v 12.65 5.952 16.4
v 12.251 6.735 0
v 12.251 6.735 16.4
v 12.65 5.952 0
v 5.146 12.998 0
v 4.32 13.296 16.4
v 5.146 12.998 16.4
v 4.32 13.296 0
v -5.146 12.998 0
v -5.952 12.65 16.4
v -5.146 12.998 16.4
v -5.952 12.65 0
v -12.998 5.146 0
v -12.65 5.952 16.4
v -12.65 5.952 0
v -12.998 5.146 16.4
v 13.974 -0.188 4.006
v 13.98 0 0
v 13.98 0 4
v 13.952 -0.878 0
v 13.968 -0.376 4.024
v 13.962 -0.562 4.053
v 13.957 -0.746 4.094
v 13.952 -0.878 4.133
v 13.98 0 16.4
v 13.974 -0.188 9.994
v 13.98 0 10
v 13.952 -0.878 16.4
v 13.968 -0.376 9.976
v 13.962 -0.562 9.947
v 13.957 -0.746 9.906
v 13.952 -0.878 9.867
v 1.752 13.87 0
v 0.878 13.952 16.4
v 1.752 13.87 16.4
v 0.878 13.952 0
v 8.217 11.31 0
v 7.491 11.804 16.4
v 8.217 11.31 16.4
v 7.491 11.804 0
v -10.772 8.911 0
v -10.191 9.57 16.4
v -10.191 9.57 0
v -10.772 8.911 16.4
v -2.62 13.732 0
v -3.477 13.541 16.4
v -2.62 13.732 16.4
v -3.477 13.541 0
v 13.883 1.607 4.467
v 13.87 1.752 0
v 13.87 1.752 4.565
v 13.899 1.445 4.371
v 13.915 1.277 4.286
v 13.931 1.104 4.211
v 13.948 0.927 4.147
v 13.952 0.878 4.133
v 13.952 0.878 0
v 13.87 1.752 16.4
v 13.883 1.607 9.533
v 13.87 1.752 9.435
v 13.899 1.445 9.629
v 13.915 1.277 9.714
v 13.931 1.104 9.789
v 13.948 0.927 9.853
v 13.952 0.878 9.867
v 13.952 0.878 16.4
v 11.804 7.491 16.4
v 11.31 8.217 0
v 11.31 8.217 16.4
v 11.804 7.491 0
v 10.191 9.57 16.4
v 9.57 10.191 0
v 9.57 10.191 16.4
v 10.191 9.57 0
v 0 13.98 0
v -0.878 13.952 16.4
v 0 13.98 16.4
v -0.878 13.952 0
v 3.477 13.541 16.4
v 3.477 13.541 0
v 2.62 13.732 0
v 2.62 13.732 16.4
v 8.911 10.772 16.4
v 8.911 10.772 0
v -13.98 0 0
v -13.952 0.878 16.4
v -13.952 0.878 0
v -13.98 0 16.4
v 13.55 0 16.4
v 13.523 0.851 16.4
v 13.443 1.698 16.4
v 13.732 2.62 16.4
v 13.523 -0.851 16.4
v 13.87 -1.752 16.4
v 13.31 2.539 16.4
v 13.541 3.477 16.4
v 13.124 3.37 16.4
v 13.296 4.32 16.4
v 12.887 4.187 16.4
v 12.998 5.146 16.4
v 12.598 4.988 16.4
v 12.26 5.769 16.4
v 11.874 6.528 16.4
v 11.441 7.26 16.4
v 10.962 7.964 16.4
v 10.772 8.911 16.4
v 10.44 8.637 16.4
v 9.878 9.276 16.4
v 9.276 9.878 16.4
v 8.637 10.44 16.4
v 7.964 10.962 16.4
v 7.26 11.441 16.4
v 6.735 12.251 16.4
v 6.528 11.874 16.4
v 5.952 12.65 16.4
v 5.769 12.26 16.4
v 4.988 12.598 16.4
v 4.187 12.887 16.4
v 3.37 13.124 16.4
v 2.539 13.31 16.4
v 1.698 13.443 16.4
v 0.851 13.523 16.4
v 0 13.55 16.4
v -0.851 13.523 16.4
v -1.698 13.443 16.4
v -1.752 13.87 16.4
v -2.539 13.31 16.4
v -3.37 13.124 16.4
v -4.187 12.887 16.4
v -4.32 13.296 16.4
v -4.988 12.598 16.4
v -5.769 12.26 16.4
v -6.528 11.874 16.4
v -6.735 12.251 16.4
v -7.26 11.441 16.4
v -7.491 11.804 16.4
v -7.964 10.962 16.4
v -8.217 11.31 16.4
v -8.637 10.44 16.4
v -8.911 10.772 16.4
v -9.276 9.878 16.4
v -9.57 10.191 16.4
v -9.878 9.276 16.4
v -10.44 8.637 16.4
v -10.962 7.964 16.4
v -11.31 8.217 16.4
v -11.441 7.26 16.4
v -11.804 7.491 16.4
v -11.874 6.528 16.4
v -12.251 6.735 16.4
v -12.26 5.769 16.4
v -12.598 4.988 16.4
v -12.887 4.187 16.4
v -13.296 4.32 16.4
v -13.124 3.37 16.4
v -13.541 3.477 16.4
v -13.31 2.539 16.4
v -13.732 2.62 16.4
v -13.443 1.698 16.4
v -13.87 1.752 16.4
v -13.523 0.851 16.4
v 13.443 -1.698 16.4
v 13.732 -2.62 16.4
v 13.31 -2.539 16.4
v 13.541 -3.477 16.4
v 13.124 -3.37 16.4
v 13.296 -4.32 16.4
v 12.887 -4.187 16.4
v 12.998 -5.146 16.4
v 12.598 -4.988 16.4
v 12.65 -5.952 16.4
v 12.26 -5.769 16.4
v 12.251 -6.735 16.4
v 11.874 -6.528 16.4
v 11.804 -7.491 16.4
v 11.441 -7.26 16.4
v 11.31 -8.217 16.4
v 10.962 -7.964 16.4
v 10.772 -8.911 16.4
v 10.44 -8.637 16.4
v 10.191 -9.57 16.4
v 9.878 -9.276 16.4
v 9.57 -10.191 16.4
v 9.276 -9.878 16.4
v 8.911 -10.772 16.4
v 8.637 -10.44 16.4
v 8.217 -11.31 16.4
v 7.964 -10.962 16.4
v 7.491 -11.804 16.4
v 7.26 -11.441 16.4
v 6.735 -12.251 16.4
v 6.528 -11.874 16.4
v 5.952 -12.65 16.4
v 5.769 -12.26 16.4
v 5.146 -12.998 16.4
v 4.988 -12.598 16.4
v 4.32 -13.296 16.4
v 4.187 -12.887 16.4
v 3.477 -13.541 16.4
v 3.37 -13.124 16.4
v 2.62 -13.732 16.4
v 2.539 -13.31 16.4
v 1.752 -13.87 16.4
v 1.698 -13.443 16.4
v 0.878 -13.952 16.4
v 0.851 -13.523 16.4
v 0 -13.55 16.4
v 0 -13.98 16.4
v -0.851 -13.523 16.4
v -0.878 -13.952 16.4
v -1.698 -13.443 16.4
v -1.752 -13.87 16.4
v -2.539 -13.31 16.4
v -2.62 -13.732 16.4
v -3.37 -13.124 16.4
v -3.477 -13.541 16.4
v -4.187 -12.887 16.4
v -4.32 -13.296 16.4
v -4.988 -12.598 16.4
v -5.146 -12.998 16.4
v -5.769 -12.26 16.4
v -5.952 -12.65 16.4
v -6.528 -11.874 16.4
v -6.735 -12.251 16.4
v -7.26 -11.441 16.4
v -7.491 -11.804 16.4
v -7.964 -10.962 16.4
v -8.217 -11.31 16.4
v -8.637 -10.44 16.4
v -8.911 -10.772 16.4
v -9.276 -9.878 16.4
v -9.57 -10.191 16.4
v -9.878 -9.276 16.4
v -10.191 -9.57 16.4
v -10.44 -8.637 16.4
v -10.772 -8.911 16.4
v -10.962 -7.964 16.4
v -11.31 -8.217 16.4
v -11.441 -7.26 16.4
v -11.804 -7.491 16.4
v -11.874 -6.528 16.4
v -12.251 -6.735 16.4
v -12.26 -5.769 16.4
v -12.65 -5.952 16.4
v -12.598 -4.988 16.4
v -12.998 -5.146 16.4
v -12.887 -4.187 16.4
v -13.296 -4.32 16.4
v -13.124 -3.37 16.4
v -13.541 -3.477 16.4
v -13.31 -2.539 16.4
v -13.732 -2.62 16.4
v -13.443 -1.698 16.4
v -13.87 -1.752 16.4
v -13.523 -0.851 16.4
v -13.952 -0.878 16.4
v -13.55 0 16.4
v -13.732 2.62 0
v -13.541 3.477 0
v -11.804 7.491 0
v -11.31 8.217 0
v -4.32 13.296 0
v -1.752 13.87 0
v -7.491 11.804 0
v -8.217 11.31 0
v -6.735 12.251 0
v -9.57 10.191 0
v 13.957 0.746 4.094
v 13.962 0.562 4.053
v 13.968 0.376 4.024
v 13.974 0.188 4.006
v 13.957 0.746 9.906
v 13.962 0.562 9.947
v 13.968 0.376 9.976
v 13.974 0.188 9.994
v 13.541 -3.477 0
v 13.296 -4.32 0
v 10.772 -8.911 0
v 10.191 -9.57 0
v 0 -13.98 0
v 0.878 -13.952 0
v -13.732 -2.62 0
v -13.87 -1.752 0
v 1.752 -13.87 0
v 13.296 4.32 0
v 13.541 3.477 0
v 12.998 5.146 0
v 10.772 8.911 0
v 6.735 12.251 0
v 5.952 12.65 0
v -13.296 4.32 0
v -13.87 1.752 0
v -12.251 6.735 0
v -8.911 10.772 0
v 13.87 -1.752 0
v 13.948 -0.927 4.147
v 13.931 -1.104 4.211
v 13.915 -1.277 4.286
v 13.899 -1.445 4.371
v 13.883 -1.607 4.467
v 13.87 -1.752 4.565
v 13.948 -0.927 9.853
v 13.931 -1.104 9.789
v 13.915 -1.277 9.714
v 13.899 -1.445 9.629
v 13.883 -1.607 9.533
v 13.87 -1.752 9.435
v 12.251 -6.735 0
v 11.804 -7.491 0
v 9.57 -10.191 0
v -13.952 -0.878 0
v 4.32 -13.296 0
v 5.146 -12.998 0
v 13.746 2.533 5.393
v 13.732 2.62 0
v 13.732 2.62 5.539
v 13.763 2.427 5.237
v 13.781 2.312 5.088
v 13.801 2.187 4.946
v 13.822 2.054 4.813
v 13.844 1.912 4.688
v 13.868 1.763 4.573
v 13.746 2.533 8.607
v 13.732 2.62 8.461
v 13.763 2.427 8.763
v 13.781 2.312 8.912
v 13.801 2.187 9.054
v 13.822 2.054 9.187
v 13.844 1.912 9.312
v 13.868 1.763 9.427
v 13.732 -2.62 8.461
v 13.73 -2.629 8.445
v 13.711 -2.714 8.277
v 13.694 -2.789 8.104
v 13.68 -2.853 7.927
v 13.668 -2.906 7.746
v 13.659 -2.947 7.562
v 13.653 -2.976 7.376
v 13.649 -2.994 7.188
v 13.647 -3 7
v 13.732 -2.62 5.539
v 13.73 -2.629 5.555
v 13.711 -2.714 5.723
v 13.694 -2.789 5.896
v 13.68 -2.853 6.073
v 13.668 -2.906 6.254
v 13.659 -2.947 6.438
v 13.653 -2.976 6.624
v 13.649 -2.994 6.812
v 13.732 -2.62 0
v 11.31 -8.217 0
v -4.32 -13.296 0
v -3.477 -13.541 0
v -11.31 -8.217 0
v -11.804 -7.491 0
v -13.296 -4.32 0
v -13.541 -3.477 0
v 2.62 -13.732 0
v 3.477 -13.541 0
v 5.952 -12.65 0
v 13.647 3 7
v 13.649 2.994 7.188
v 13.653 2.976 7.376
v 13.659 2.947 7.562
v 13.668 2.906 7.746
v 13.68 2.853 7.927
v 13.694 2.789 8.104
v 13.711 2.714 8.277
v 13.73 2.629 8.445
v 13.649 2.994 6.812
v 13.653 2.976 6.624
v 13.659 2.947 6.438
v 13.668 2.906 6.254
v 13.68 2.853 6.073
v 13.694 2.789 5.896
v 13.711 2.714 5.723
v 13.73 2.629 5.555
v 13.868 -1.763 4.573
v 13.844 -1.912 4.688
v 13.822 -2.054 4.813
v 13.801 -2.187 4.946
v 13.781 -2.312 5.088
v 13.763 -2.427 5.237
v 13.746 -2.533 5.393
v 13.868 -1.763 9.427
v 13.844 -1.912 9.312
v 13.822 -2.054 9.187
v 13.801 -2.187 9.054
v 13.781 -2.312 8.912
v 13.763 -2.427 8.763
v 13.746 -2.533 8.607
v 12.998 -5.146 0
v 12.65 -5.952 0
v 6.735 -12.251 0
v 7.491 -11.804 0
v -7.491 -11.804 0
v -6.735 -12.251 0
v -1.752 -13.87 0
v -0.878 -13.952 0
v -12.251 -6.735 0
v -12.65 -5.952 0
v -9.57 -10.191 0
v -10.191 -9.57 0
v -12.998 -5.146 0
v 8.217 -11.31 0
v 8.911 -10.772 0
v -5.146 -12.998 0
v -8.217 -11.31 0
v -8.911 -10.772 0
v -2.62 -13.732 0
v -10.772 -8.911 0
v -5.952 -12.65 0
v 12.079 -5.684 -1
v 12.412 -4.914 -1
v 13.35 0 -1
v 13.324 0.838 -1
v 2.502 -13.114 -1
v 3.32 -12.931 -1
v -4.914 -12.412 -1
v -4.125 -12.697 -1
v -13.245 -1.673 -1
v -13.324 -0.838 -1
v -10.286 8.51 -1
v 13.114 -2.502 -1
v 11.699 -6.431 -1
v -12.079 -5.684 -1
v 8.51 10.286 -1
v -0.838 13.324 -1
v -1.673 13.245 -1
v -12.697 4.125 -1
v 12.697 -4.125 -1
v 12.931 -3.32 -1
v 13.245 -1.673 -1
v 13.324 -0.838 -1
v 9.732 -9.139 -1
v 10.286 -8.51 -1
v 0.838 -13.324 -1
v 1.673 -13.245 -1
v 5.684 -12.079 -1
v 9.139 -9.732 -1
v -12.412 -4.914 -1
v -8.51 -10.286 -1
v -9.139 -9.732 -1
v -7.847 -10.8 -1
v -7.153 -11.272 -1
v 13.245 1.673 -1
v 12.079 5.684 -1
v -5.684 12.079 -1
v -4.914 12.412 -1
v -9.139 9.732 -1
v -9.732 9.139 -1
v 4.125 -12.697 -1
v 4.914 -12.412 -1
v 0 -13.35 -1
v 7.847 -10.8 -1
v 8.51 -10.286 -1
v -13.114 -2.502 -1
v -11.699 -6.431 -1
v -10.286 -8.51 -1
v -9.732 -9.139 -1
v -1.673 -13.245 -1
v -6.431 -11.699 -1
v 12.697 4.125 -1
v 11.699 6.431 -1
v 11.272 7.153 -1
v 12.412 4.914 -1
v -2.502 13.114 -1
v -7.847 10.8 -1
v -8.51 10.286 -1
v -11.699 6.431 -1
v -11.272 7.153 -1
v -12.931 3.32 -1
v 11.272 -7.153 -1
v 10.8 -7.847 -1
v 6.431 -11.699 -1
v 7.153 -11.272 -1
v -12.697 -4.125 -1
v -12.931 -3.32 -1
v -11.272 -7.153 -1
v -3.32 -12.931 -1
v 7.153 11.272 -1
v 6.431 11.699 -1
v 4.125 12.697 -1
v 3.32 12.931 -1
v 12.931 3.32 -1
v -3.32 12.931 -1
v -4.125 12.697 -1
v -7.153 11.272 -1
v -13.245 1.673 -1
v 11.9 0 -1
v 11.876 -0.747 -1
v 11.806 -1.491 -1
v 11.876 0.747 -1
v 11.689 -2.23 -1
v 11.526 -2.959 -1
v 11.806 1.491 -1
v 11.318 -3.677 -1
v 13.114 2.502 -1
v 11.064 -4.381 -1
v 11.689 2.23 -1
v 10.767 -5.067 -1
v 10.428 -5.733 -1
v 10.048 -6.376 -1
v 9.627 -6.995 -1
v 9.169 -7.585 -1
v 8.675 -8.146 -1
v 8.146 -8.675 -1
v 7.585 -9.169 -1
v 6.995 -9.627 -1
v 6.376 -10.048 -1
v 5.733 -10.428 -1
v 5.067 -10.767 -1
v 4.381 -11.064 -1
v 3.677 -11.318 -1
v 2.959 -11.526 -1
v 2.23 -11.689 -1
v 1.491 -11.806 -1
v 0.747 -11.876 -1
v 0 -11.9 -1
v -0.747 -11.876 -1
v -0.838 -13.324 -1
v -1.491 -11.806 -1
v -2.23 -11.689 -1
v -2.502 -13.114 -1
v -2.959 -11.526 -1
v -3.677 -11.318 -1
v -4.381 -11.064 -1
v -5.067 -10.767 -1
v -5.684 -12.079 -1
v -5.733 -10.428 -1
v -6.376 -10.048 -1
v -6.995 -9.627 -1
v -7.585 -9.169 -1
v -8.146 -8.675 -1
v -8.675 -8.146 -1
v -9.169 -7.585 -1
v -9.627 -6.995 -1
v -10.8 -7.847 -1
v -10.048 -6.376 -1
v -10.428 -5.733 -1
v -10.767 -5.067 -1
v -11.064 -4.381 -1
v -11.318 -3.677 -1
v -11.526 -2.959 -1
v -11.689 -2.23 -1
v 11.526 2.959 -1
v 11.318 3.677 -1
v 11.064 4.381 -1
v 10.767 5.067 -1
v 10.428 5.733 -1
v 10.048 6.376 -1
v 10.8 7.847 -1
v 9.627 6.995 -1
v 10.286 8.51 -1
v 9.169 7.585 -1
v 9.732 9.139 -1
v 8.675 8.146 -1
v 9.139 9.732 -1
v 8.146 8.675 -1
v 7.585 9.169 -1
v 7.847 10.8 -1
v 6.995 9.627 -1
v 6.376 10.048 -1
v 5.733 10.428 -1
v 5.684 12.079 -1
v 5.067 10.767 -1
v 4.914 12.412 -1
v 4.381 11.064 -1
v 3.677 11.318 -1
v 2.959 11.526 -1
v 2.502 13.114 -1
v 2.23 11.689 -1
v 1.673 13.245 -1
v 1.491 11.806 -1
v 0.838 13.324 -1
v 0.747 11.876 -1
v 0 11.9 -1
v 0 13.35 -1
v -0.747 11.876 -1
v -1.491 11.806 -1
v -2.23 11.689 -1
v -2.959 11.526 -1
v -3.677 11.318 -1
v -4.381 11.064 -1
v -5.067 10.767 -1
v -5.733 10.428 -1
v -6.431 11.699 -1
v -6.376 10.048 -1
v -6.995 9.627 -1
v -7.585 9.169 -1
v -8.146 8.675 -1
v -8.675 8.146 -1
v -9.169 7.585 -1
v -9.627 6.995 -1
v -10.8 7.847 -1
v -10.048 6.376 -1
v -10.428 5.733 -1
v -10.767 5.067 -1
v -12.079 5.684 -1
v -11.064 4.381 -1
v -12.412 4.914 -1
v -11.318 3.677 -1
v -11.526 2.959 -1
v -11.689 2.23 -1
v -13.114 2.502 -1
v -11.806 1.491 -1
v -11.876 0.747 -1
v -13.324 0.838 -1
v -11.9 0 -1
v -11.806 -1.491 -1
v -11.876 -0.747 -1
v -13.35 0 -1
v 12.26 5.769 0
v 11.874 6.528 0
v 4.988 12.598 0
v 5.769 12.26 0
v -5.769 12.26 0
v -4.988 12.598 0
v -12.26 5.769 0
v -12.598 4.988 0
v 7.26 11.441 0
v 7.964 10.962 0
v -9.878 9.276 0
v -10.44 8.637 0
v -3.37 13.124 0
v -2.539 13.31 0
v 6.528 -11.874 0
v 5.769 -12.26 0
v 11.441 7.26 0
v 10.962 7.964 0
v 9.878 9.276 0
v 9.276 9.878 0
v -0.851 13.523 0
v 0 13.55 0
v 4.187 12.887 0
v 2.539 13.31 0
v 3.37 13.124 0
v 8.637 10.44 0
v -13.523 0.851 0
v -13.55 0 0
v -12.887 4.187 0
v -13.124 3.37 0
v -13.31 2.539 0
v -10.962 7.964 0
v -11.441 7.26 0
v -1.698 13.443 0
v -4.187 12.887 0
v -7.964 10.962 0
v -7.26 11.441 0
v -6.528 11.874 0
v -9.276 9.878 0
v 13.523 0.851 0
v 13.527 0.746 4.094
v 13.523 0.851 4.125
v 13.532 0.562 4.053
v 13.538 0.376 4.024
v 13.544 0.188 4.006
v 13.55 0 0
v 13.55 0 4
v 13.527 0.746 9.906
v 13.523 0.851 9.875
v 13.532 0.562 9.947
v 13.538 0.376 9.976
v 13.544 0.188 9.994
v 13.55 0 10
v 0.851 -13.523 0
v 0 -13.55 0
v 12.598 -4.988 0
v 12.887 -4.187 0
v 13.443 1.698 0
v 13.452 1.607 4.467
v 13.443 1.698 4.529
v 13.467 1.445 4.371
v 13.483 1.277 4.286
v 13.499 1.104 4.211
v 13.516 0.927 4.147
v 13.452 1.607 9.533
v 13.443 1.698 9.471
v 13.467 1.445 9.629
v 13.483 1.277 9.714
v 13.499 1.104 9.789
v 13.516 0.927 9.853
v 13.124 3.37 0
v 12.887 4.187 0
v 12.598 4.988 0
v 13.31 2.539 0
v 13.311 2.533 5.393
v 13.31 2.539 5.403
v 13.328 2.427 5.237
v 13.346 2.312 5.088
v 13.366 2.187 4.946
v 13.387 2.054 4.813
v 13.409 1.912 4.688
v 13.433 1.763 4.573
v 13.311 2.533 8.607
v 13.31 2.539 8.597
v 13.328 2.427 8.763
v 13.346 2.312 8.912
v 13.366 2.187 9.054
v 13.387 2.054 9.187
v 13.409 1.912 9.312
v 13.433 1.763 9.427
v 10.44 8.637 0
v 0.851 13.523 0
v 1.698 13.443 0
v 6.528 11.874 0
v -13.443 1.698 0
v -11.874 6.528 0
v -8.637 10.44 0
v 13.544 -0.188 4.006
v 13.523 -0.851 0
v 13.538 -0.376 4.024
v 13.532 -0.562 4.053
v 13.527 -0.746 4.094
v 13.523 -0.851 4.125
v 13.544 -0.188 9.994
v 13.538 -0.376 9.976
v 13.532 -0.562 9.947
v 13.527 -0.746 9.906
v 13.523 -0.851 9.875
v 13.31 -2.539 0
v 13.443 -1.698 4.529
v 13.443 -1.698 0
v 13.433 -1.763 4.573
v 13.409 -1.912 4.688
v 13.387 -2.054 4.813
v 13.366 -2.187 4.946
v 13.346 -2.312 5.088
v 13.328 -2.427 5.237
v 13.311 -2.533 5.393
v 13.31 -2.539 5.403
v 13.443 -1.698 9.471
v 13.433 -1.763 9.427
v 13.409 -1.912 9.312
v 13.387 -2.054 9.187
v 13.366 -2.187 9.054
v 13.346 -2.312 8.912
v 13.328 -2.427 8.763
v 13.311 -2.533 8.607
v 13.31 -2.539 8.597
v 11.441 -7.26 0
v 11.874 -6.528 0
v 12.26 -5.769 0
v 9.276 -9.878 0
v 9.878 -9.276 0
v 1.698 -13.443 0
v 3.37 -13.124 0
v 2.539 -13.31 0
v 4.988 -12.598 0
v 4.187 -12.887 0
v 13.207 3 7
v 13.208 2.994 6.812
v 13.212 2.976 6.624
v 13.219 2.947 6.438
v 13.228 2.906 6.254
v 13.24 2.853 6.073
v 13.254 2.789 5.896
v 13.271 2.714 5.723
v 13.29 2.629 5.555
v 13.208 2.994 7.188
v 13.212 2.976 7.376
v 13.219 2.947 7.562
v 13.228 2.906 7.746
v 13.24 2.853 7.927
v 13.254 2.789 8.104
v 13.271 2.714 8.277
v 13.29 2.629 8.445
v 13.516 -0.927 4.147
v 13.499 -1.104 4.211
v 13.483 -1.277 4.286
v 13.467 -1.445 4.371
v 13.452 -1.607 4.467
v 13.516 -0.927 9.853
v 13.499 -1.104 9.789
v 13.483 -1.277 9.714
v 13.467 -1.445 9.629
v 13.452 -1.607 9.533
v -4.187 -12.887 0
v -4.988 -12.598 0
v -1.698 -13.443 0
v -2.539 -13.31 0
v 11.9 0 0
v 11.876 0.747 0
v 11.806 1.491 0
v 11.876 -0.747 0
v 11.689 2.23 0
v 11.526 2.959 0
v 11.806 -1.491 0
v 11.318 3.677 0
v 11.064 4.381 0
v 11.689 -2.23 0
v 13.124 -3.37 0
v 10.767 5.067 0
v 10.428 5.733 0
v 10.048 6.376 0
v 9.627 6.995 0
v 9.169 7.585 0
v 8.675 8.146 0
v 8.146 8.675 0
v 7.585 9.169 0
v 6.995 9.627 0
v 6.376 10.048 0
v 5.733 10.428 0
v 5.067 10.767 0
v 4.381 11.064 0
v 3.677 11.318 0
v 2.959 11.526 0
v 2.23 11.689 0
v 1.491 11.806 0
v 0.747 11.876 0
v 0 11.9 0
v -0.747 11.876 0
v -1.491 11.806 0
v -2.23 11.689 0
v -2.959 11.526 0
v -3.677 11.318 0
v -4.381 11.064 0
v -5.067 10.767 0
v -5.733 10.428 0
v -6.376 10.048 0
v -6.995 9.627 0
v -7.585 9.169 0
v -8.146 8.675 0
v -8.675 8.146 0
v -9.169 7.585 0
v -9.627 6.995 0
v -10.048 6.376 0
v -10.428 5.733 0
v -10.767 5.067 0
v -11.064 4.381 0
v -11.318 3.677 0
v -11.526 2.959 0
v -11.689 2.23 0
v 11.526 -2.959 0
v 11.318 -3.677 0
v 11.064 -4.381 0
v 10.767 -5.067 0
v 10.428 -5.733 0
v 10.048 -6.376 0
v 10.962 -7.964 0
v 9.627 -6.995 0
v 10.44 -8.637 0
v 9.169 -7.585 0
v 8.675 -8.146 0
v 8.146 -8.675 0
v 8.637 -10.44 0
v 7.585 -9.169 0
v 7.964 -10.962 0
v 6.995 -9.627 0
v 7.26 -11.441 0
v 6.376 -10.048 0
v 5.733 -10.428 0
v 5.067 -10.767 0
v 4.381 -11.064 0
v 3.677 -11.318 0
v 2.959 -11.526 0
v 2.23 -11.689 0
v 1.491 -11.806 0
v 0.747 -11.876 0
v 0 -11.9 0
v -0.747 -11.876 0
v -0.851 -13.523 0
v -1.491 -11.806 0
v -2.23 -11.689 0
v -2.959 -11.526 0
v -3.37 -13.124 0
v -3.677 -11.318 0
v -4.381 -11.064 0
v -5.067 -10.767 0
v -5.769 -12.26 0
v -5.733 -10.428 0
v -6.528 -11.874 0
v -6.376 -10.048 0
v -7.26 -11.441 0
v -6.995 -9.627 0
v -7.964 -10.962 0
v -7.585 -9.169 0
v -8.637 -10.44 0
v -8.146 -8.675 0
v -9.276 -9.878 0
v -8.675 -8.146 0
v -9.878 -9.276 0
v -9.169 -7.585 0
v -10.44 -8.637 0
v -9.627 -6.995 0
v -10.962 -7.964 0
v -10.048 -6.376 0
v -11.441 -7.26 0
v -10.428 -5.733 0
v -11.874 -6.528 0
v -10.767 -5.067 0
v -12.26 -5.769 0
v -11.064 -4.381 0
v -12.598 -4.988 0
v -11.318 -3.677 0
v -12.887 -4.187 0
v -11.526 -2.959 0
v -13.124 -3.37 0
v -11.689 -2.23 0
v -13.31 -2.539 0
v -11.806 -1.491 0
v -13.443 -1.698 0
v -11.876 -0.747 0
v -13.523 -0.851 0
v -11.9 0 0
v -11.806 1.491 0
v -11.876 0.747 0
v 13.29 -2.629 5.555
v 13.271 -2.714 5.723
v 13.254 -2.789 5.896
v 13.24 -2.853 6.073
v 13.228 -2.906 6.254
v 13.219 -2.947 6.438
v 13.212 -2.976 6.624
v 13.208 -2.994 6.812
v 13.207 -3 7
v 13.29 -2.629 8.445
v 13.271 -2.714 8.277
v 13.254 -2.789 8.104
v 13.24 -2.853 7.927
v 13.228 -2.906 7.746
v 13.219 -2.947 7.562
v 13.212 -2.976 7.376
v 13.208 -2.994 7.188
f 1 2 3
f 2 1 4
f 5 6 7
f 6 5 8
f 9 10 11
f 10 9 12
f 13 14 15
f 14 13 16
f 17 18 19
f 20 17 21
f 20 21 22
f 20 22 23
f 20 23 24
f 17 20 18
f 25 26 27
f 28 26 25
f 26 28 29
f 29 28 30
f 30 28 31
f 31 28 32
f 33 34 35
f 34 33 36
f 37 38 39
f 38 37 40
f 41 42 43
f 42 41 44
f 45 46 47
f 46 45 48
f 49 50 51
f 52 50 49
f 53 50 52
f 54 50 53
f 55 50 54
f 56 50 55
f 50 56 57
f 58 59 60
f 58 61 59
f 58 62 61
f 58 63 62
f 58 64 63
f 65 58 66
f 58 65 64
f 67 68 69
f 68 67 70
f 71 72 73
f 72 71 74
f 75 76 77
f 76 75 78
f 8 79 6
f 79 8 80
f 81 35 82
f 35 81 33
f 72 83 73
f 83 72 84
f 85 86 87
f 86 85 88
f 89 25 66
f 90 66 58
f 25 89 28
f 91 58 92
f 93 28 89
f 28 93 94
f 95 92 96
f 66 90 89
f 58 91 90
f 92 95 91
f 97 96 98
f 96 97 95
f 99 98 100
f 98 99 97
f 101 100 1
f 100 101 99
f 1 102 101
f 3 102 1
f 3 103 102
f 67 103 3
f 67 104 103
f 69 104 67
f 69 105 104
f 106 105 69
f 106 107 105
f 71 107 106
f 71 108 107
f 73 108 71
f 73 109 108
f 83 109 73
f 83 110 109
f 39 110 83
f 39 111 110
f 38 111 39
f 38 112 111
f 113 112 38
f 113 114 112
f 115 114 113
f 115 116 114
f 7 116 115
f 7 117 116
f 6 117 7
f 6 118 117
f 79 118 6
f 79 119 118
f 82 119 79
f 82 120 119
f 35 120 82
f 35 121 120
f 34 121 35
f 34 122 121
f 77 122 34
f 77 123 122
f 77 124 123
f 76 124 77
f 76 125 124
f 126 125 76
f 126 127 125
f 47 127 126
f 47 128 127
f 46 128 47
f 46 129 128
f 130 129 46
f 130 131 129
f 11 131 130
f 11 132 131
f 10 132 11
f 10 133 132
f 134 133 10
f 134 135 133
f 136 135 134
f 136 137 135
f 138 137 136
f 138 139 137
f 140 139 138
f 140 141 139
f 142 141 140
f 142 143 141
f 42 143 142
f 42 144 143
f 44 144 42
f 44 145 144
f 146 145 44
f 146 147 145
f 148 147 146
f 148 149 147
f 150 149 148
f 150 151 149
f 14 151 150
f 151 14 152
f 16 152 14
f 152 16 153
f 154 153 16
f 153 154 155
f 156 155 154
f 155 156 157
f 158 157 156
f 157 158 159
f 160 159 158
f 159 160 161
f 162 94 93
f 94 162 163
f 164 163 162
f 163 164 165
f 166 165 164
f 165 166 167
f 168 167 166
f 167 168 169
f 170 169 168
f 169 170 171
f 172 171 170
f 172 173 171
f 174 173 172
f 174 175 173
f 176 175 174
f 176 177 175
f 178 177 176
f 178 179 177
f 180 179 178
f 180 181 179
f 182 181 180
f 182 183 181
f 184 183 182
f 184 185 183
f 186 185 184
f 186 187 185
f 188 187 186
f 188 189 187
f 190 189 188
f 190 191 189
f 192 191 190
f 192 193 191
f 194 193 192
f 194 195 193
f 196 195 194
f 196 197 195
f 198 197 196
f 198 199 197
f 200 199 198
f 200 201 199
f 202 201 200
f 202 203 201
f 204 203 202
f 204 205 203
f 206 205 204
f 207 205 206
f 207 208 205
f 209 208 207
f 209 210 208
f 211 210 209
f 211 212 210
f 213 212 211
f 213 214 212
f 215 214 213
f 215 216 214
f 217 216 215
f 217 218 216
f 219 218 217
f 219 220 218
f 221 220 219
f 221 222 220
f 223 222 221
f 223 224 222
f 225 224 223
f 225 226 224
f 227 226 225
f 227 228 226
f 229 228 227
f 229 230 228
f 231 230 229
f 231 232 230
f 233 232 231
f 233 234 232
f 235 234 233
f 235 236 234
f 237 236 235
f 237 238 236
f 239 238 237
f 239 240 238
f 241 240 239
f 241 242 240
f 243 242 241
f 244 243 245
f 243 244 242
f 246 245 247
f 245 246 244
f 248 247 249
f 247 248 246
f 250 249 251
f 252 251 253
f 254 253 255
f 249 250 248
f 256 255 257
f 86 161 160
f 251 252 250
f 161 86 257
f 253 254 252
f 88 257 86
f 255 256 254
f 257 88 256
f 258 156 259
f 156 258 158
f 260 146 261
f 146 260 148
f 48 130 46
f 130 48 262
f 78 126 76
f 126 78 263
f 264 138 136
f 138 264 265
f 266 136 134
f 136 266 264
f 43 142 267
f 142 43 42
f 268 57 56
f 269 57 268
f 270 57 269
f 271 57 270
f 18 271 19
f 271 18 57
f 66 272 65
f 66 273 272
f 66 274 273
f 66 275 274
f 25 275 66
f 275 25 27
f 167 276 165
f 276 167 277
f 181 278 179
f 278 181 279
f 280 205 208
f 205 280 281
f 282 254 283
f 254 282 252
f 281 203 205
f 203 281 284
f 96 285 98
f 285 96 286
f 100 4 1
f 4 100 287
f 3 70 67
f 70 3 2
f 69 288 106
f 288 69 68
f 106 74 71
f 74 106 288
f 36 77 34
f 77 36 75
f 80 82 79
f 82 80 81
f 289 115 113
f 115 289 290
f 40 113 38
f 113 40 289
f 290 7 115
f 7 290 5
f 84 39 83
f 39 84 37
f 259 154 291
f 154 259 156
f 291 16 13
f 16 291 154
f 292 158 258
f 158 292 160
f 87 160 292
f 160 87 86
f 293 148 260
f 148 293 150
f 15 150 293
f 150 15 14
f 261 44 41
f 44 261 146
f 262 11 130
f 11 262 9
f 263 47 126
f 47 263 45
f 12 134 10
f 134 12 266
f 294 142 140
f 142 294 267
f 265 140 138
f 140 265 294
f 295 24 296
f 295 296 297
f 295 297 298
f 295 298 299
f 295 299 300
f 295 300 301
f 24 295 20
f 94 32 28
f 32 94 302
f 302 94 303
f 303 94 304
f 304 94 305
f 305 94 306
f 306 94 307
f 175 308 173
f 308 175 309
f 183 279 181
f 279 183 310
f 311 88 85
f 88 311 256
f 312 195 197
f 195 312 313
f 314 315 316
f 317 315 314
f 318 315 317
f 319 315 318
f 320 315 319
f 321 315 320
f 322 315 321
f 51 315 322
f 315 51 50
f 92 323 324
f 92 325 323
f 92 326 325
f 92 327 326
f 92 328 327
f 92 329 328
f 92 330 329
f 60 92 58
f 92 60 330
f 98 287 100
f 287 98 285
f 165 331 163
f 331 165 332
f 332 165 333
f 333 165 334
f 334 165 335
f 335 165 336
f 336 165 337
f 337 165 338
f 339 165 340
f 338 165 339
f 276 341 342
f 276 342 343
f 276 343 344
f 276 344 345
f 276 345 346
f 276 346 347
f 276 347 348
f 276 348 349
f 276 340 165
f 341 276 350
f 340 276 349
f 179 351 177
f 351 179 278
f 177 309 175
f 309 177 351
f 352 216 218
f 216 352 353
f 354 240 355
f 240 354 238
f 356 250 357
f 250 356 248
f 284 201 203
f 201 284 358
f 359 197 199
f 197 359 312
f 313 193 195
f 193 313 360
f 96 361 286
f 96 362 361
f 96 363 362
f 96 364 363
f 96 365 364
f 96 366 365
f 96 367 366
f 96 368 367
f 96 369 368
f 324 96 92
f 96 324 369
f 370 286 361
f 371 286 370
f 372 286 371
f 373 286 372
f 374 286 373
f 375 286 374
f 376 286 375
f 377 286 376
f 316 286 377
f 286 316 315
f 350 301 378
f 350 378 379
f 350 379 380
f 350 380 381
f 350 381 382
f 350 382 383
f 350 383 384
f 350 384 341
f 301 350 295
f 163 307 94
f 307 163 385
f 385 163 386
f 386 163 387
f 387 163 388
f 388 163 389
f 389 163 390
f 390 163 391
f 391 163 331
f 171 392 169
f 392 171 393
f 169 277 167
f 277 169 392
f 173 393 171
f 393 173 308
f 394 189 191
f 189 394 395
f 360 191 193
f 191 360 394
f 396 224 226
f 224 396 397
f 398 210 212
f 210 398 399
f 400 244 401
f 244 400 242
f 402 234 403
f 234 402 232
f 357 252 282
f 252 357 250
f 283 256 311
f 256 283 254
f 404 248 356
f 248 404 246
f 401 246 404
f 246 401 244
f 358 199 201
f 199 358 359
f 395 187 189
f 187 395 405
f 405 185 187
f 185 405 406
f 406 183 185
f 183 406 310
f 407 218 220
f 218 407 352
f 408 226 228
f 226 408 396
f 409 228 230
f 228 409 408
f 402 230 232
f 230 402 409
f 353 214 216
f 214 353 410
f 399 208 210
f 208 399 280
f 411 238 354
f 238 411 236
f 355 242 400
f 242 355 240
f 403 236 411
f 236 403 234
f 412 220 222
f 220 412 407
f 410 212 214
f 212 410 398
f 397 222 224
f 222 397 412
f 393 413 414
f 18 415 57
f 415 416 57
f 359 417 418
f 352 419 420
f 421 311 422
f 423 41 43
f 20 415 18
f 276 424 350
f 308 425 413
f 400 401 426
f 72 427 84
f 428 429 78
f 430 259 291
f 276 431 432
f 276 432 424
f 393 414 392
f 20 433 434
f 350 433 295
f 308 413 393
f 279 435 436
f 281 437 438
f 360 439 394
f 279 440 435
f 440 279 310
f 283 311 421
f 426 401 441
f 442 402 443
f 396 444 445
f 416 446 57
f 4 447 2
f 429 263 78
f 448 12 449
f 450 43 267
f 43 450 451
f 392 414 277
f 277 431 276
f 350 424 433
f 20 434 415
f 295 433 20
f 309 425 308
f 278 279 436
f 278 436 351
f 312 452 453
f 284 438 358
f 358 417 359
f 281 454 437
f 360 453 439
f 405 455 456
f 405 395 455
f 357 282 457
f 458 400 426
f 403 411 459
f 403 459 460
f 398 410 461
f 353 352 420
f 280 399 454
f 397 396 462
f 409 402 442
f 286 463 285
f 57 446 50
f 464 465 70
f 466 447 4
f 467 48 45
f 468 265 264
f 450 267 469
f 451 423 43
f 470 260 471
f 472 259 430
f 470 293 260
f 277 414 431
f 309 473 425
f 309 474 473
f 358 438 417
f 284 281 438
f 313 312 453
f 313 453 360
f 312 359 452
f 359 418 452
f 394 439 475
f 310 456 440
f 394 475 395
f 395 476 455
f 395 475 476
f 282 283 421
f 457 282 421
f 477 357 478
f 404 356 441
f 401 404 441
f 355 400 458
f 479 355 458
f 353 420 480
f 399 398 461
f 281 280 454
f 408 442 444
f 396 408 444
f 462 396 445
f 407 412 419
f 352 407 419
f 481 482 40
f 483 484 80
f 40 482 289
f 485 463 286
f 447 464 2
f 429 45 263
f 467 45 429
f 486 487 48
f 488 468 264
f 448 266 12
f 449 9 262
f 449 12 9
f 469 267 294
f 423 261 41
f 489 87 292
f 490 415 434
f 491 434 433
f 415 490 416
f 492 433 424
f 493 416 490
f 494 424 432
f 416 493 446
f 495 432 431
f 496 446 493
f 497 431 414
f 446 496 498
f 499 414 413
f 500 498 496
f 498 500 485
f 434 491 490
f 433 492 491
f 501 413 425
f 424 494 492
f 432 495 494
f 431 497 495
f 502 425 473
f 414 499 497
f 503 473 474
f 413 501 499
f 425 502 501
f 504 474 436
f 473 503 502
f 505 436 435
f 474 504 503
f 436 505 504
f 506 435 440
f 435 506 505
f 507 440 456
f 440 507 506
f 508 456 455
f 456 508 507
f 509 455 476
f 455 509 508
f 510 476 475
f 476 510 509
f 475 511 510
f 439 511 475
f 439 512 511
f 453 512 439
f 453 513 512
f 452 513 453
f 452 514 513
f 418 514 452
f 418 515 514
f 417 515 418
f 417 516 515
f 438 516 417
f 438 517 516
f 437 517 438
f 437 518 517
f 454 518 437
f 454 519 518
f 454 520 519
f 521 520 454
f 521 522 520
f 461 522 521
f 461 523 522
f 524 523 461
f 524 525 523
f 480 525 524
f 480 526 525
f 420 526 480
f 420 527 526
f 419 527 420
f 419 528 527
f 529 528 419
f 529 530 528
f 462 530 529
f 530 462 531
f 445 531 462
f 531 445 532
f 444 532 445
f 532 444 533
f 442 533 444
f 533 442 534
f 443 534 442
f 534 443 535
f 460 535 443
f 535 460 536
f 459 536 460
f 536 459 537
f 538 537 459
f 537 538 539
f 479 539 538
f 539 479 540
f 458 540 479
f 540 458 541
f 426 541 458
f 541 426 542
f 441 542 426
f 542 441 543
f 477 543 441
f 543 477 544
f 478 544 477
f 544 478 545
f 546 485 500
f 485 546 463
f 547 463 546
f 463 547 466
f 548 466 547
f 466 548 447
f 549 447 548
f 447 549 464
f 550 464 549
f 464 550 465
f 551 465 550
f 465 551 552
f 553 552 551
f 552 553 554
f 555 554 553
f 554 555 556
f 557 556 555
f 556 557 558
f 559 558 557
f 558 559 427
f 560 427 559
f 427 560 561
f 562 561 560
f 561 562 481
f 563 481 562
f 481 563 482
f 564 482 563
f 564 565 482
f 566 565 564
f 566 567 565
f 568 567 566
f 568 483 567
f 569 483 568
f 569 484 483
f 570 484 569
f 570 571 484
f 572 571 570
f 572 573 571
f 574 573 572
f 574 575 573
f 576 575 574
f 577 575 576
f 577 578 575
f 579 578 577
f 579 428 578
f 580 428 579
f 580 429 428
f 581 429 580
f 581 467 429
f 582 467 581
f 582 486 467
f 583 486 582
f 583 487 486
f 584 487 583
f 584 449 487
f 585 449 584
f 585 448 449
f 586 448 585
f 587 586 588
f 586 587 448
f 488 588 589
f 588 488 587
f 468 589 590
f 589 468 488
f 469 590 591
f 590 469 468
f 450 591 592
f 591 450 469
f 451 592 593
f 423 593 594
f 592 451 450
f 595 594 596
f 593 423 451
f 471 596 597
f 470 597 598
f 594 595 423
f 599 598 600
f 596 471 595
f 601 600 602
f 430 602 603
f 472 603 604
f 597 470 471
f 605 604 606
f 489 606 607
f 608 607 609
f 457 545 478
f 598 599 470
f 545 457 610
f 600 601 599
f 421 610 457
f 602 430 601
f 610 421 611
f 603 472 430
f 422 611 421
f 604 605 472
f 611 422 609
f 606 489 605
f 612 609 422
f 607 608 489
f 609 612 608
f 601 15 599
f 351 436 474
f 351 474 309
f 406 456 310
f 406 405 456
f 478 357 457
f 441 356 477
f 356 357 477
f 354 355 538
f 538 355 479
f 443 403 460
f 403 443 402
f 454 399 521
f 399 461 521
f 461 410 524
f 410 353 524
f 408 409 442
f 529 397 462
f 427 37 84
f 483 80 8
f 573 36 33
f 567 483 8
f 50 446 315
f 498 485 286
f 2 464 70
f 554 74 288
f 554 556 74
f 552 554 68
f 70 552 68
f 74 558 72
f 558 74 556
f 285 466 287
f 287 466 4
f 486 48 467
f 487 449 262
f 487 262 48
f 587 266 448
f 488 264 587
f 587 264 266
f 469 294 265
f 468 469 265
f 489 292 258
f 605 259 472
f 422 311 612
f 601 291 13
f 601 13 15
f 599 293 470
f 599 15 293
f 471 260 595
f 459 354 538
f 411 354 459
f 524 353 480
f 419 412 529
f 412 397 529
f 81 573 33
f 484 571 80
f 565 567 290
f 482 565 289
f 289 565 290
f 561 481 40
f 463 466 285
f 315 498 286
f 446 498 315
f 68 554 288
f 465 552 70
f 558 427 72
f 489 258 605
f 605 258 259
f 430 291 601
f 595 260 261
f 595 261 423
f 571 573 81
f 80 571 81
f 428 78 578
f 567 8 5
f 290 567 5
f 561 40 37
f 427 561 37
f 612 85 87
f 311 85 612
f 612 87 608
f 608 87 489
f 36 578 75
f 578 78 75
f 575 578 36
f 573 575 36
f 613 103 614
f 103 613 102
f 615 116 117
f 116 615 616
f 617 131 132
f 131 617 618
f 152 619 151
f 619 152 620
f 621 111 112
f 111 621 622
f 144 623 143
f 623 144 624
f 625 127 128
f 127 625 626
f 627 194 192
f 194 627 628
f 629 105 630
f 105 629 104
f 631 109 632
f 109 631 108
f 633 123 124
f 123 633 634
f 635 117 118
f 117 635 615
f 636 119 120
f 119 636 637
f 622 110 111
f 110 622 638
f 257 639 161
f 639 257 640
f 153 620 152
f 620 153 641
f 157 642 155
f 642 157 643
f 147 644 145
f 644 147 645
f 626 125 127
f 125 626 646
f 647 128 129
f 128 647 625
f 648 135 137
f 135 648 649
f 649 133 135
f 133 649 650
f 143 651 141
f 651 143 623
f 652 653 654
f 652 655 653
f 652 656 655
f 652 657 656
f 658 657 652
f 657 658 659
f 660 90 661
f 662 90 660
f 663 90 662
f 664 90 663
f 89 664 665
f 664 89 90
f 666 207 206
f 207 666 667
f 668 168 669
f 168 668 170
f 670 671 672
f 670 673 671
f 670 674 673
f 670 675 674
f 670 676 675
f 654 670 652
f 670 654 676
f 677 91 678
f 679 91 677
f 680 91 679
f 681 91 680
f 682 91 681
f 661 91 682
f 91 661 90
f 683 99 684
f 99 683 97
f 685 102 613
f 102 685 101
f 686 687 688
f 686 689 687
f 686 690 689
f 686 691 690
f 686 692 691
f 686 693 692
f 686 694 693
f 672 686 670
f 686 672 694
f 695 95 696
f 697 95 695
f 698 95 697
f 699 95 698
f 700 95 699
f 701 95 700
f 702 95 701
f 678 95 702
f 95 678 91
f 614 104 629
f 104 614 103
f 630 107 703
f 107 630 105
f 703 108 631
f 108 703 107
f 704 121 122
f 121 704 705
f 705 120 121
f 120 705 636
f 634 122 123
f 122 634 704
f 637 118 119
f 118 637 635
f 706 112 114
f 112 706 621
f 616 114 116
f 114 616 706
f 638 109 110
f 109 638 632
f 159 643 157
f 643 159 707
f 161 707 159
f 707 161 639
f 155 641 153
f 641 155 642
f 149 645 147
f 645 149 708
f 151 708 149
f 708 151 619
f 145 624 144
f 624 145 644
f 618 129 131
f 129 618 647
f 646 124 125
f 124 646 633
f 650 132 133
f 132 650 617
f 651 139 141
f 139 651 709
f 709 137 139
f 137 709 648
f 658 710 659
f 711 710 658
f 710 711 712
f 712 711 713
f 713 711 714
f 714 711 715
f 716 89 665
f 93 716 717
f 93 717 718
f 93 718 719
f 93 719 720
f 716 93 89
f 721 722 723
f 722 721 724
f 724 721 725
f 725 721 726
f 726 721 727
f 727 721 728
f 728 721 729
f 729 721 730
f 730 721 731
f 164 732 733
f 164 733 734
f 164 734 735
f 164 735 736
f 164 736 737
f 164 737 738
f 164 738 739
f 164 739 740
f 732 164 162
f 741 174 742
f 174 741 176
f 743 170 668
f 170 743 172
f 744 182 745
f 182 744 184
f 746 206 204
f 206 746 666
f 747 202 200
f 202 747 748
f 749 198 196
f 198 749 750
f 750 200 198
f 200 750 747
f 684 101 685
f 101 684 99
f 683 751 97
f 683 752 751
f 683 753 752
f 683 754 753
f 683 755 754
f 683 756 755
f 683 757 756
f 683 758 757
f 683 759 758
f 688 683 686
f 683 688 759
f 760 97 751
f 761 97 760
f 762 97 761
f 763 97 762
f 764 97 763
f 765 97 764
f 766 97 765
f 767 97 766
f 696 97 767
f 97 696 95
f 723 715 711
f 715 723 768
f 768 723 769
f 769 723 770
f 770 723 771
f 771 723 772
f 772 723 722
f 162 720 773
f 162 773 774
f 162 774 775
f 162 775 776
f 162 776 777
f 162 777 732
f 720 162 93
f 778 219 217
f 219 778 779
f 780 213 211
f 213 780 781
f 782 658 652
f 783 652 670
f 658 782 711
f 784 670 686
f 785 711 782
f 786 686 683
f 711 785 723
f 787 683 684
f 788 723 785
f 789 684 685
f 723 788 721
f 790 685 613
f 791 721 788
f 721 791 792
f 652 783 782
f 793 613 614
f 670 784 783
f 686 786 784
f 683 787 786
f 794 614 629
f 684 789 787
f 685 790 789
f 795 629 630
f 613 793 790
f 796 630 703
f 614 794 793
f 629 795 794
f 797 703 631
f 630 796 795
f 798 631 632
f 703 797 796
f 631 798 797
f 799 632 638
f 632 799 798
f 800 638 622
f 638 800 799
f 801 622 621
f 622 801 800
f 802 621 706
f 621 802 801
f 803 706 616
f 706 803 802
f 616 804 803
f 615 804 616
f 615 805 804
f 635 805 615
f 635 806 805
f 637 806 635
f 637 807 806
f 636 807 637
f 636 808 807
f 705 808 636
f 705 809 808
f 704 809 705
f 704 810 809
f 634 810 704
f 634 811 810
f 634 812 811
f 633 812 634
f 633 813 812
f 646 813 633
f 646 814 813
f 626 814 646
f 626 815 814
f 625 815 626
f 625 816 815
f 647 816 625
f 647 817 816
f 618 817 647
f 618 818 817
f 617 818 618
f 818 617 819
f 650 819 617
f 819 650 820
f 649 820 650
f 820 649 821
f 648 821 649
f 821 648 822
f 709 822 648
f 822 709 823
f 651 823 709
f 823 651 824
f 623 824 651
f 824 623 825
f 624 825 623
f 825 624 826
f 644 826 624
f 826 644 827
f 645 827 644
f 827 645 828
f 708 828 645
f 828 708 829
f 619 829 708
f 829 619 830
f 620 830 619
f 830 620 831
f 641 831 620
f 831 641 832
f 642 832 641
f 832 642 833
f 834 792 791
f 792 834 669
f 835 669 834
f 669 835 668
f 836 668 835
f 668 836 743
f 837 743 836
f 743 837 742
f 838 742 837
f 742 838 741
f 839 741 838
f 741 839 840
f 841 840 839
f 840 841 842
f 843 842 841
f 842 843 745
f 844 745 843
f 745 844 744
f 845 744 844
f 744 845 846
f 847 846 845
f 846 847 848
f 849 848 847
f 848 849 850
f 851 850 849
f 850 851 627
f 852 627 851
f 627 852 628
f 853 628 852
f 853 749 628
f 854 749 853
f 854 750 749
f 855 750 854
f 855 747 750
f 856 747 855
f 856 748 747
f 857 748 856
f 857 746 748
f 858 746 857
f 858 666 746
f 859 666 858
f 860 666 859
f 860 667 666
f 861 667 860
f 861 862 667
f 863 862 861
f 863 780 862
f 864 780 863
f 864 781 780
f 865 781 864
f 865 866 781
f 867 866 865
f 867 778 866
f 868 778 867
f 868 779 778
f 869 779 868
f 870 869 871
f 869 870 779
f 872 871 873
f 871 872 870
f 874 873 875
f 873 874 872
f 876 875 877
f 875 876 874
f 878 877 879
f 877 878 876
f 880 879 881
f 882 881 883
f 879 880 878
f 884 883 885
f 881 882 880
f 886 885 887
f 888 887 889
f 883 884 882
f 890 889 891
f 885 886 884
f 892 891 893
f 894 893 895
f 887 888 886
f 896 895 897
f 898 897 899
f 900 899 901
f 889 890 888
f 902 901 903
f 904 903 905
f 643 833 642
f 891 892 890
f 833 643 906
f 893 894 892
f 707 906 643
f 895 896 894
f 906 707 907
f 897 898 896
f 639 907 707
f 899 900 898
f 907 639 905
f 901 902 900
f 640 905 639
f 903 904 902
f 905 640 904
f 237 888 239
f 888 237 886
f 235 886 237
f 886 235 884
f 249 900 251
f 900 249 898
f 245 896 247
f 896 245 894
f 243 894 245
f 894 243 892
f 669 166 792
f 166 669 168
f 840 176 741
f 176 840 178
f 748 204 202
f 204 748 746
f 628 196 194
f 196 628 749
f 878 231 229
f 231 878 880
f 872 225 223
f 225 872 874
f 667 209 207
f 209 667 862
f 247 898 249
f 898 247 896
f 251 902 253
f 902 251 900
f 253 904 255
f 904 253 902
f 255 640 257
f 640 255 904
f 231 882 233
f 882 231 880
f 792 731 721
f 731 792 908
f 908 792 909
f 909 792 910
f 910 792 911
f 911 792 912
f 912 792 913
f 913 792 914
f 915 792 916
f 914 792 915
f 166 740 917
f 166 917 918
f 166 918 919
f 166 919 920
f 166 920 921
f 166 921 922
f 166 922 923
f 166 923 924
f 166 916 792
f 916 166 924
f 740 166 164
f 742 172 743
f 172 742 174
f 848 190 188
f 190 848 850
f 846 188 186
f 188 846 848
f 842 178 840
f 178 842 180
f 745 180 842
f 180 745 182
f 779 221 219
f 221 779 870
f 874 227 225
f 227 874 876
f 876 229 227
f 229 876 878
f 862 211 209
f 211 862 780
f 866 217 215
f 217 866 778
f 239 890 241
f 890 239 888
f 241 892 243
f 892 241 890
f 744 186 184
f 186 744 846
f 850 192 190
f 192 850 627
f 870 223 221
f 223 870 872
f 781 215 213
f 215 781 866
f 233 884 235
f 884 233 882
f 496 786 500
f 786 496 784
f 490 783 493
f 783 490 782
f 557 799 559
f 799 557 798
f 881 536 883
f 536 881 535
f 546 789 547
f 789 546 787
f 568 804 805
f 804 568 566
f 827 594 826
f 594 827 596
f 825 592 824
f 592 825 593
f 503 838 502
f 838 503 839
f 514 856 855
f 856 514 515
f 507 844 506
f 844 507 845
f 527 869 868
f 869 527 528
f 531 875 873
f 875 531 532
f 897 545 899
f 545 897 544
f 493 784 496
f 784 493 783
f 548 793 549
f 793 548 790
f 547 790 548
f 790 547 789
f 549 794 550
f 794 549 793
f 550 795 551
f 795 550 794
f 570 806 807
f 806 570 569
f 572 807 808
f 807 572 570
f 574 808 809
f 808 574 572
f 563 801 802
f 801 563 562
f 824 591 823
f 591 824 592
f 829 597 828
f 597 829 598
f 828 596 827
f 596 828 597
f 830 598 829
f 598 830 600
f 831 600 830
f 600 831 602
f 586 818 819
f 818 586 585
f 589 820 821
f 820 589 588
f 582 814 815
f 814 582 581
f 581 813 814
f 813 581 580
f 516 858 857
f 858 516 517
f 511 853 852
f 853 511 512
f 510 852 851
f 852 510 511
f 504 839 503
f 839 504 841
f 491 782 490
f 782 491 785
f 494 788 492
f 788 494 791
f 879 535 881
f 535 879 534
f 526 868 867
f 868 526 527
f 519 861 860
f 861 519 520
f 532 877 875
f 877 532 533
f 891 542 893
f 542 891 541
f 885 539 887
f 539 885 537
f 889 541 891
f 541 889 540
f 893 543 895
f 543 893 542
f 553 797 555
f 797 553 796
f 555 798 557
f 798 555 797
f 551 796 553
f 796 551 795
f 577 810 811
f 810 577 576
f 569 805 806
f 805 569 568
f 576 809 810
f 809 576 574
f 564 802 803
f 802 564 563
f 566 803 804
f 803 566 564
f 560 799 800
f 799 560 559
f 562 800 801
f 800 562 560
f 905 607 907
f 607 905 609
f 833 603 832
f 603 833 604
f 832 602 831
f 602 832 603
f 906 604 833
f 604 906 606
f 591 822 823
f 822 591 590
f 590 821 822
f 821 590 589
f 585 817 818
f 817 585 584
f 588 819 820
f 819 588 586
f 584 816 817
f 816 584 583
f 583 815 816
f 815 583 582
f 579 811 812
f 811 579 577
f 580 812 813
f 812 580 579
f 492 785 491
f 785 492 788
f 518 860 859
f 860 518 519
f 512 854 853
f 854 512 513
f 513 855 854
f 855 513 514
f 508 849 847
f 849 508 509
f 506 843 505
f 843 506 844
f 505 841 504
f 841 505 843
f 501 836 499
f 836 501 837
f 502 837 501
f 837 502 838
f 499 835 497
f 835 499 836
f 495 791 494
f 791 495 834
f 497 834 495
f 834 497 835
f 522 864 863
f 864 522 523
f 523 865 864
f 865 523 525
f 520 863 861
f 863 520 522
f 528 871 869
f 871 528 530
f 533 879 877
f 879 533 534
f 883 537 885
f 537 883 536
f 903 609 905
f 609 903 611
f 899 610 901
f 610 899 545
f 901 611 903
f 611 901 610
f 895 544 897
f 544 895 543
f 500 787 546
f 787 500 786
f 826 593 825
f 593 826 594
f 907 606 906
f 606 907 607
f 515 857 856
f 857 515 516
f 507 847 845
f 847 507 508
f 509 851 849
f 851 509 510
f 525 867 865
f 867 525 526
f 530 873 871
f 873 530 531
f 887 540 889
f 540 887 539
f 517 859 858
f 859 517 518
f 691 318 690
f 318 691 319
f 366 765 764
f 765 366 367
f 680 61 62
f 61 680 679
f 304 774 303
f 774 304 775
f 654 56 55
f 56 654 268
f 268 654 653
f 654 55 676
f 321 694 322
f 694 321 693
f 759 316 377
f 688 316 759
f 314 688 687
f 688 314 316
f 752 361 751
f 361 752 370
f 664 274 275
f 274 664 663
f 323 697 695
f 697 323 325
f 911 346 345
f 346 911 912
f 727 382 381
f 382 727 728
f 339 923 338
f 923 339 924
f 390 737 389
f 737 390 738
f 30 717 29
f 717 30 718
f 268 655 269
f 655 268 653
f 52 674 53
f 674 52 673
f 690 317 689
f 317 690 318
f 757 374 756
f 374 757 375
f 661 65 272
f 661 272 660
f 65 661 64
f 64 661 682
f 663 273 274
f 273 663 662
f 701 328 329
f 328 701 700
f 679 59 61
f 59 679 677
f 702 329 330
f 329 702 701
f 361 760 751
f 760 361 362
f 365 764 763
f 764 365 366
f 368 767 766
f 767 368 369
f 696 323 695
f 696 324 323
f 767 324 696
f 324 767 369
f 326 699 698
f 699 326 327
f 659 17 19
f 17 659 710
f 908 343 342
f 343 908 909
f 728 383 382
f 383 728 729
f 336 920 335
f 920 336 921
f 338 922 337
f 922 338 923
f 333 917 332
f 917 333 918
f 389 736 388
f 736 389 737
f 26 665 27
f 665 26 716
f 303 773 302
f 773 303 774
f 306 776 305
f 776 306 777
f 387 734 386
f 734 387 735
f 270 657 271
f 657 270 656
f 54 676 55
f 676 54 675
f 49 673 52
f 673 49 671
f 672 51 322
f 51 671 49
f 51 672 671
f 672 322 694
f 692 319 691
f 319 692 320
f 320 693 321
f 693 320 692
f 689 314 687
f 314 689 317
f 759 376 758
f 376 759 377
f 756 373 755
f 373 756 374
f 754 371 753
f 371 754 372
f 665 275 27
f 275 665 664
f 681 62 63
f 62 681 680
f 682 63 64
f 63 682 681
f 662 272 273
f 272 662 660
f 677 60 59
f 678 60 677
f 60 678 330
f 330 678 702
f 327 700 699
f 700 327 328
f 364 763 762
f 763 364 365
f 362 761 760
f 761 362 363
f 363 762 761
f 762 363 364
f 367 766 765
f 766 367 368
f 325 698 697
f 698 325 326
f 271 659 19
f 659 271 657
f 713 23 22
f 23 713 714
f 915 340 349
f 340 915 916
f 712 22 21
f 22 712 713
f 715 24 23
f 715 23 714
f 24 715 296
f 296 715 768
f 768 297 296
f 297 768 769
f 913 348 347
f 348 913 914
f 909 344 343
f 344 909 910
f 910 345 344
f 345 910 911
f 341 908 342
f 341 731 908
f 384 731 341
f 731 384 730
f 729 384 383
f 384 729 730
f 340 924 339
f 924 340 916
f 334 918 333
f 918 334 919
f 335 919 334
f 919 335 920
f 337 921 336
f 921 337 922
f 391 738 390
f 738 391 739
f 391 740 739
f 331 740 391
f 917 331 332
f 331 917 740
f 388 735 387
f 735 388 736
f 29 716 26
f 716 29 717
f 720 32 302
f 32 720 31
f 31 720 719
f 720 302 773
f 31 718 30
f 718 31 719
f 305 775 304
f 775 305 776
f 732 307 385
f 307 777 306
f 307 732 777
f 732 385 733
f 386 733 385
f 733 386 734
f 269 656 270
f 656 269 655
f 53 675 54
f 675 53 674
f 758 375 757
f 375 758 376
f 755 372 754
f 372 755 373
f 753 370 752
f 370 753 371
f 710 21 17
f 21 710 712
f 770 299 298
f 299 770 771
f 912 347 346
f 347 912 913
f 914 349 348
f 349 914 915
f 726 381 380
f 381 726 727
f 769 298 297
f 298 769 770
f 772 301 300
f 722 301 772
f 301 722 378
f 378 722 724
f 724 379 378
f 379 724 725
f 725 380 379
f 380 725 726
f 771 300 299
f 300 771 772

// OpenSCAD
$fn=100;


CLEAR = 0.05;
perimeter = 0.43;

text2 = "jmeno";

stena_hl = 2;
stena_hlava = 1; // spodni stena u usb
r_telo_in = 19.2/2;
r_telo_in_min = r_telo_in ;
r_telo_out = r_telo_in + stena_hl;

r_zavit = r_telo_in;

r_plast_in = r_telo_out + 0.1;
r_plast_out = r_plast_in + 8;

telo_vyska = 80;
telo_vyska_zavit = 10;

hlava_vyska = 15;
r_hlava_out = r_telo_out + 1.75;

led_dira = 3;
led_koule = 10;
led_koule_zanoreni = 3;
led_posun = 9;
led_mezera = 3;

sila_pcb = 1.8;
sila_prb_sirsi = sila_pcb + 0.5; // sirsi sila drazky pro snadnejsi zasunuti

m_pcb_bottom = 35;
m_pcb_top = m_pcb_bottom + 30;
m_pcb_width = 21;
m_pcb_width_sirsi = 22;
m_pcb_length = 30;

INd = 50;

module shield() {
    difference(){
        union(){
            cylinder (hlava_vyska+stena_hlava+0.4, r_hlava_out + 1*perimeter+0.2, r_hlava_out + 1*perimeter+0.2 );
            translate ([0, 0, -1]) cylinder (1, r_hlava_out, r_hlava_out + 1*perimeter+0.2);
        }
        cylinder (hlava_vyska+stena_hlava+1+CLEAR, r_hlava_out+0.2, r_hlava_out +0.2);
        translate ([0, 0, -1]) cylinder (2, r_plast_in+0.2, r_plast_in+0.2 );
        rotate([0,90,0]) translate([-hlava_vyska-stena_hlava + led_posun,0,m_pcb_width/2+perimeter]) cylinder(r_hlava_out ,led_dira, led_dira);
        }
}




translate ([0,0,0]) shield();
